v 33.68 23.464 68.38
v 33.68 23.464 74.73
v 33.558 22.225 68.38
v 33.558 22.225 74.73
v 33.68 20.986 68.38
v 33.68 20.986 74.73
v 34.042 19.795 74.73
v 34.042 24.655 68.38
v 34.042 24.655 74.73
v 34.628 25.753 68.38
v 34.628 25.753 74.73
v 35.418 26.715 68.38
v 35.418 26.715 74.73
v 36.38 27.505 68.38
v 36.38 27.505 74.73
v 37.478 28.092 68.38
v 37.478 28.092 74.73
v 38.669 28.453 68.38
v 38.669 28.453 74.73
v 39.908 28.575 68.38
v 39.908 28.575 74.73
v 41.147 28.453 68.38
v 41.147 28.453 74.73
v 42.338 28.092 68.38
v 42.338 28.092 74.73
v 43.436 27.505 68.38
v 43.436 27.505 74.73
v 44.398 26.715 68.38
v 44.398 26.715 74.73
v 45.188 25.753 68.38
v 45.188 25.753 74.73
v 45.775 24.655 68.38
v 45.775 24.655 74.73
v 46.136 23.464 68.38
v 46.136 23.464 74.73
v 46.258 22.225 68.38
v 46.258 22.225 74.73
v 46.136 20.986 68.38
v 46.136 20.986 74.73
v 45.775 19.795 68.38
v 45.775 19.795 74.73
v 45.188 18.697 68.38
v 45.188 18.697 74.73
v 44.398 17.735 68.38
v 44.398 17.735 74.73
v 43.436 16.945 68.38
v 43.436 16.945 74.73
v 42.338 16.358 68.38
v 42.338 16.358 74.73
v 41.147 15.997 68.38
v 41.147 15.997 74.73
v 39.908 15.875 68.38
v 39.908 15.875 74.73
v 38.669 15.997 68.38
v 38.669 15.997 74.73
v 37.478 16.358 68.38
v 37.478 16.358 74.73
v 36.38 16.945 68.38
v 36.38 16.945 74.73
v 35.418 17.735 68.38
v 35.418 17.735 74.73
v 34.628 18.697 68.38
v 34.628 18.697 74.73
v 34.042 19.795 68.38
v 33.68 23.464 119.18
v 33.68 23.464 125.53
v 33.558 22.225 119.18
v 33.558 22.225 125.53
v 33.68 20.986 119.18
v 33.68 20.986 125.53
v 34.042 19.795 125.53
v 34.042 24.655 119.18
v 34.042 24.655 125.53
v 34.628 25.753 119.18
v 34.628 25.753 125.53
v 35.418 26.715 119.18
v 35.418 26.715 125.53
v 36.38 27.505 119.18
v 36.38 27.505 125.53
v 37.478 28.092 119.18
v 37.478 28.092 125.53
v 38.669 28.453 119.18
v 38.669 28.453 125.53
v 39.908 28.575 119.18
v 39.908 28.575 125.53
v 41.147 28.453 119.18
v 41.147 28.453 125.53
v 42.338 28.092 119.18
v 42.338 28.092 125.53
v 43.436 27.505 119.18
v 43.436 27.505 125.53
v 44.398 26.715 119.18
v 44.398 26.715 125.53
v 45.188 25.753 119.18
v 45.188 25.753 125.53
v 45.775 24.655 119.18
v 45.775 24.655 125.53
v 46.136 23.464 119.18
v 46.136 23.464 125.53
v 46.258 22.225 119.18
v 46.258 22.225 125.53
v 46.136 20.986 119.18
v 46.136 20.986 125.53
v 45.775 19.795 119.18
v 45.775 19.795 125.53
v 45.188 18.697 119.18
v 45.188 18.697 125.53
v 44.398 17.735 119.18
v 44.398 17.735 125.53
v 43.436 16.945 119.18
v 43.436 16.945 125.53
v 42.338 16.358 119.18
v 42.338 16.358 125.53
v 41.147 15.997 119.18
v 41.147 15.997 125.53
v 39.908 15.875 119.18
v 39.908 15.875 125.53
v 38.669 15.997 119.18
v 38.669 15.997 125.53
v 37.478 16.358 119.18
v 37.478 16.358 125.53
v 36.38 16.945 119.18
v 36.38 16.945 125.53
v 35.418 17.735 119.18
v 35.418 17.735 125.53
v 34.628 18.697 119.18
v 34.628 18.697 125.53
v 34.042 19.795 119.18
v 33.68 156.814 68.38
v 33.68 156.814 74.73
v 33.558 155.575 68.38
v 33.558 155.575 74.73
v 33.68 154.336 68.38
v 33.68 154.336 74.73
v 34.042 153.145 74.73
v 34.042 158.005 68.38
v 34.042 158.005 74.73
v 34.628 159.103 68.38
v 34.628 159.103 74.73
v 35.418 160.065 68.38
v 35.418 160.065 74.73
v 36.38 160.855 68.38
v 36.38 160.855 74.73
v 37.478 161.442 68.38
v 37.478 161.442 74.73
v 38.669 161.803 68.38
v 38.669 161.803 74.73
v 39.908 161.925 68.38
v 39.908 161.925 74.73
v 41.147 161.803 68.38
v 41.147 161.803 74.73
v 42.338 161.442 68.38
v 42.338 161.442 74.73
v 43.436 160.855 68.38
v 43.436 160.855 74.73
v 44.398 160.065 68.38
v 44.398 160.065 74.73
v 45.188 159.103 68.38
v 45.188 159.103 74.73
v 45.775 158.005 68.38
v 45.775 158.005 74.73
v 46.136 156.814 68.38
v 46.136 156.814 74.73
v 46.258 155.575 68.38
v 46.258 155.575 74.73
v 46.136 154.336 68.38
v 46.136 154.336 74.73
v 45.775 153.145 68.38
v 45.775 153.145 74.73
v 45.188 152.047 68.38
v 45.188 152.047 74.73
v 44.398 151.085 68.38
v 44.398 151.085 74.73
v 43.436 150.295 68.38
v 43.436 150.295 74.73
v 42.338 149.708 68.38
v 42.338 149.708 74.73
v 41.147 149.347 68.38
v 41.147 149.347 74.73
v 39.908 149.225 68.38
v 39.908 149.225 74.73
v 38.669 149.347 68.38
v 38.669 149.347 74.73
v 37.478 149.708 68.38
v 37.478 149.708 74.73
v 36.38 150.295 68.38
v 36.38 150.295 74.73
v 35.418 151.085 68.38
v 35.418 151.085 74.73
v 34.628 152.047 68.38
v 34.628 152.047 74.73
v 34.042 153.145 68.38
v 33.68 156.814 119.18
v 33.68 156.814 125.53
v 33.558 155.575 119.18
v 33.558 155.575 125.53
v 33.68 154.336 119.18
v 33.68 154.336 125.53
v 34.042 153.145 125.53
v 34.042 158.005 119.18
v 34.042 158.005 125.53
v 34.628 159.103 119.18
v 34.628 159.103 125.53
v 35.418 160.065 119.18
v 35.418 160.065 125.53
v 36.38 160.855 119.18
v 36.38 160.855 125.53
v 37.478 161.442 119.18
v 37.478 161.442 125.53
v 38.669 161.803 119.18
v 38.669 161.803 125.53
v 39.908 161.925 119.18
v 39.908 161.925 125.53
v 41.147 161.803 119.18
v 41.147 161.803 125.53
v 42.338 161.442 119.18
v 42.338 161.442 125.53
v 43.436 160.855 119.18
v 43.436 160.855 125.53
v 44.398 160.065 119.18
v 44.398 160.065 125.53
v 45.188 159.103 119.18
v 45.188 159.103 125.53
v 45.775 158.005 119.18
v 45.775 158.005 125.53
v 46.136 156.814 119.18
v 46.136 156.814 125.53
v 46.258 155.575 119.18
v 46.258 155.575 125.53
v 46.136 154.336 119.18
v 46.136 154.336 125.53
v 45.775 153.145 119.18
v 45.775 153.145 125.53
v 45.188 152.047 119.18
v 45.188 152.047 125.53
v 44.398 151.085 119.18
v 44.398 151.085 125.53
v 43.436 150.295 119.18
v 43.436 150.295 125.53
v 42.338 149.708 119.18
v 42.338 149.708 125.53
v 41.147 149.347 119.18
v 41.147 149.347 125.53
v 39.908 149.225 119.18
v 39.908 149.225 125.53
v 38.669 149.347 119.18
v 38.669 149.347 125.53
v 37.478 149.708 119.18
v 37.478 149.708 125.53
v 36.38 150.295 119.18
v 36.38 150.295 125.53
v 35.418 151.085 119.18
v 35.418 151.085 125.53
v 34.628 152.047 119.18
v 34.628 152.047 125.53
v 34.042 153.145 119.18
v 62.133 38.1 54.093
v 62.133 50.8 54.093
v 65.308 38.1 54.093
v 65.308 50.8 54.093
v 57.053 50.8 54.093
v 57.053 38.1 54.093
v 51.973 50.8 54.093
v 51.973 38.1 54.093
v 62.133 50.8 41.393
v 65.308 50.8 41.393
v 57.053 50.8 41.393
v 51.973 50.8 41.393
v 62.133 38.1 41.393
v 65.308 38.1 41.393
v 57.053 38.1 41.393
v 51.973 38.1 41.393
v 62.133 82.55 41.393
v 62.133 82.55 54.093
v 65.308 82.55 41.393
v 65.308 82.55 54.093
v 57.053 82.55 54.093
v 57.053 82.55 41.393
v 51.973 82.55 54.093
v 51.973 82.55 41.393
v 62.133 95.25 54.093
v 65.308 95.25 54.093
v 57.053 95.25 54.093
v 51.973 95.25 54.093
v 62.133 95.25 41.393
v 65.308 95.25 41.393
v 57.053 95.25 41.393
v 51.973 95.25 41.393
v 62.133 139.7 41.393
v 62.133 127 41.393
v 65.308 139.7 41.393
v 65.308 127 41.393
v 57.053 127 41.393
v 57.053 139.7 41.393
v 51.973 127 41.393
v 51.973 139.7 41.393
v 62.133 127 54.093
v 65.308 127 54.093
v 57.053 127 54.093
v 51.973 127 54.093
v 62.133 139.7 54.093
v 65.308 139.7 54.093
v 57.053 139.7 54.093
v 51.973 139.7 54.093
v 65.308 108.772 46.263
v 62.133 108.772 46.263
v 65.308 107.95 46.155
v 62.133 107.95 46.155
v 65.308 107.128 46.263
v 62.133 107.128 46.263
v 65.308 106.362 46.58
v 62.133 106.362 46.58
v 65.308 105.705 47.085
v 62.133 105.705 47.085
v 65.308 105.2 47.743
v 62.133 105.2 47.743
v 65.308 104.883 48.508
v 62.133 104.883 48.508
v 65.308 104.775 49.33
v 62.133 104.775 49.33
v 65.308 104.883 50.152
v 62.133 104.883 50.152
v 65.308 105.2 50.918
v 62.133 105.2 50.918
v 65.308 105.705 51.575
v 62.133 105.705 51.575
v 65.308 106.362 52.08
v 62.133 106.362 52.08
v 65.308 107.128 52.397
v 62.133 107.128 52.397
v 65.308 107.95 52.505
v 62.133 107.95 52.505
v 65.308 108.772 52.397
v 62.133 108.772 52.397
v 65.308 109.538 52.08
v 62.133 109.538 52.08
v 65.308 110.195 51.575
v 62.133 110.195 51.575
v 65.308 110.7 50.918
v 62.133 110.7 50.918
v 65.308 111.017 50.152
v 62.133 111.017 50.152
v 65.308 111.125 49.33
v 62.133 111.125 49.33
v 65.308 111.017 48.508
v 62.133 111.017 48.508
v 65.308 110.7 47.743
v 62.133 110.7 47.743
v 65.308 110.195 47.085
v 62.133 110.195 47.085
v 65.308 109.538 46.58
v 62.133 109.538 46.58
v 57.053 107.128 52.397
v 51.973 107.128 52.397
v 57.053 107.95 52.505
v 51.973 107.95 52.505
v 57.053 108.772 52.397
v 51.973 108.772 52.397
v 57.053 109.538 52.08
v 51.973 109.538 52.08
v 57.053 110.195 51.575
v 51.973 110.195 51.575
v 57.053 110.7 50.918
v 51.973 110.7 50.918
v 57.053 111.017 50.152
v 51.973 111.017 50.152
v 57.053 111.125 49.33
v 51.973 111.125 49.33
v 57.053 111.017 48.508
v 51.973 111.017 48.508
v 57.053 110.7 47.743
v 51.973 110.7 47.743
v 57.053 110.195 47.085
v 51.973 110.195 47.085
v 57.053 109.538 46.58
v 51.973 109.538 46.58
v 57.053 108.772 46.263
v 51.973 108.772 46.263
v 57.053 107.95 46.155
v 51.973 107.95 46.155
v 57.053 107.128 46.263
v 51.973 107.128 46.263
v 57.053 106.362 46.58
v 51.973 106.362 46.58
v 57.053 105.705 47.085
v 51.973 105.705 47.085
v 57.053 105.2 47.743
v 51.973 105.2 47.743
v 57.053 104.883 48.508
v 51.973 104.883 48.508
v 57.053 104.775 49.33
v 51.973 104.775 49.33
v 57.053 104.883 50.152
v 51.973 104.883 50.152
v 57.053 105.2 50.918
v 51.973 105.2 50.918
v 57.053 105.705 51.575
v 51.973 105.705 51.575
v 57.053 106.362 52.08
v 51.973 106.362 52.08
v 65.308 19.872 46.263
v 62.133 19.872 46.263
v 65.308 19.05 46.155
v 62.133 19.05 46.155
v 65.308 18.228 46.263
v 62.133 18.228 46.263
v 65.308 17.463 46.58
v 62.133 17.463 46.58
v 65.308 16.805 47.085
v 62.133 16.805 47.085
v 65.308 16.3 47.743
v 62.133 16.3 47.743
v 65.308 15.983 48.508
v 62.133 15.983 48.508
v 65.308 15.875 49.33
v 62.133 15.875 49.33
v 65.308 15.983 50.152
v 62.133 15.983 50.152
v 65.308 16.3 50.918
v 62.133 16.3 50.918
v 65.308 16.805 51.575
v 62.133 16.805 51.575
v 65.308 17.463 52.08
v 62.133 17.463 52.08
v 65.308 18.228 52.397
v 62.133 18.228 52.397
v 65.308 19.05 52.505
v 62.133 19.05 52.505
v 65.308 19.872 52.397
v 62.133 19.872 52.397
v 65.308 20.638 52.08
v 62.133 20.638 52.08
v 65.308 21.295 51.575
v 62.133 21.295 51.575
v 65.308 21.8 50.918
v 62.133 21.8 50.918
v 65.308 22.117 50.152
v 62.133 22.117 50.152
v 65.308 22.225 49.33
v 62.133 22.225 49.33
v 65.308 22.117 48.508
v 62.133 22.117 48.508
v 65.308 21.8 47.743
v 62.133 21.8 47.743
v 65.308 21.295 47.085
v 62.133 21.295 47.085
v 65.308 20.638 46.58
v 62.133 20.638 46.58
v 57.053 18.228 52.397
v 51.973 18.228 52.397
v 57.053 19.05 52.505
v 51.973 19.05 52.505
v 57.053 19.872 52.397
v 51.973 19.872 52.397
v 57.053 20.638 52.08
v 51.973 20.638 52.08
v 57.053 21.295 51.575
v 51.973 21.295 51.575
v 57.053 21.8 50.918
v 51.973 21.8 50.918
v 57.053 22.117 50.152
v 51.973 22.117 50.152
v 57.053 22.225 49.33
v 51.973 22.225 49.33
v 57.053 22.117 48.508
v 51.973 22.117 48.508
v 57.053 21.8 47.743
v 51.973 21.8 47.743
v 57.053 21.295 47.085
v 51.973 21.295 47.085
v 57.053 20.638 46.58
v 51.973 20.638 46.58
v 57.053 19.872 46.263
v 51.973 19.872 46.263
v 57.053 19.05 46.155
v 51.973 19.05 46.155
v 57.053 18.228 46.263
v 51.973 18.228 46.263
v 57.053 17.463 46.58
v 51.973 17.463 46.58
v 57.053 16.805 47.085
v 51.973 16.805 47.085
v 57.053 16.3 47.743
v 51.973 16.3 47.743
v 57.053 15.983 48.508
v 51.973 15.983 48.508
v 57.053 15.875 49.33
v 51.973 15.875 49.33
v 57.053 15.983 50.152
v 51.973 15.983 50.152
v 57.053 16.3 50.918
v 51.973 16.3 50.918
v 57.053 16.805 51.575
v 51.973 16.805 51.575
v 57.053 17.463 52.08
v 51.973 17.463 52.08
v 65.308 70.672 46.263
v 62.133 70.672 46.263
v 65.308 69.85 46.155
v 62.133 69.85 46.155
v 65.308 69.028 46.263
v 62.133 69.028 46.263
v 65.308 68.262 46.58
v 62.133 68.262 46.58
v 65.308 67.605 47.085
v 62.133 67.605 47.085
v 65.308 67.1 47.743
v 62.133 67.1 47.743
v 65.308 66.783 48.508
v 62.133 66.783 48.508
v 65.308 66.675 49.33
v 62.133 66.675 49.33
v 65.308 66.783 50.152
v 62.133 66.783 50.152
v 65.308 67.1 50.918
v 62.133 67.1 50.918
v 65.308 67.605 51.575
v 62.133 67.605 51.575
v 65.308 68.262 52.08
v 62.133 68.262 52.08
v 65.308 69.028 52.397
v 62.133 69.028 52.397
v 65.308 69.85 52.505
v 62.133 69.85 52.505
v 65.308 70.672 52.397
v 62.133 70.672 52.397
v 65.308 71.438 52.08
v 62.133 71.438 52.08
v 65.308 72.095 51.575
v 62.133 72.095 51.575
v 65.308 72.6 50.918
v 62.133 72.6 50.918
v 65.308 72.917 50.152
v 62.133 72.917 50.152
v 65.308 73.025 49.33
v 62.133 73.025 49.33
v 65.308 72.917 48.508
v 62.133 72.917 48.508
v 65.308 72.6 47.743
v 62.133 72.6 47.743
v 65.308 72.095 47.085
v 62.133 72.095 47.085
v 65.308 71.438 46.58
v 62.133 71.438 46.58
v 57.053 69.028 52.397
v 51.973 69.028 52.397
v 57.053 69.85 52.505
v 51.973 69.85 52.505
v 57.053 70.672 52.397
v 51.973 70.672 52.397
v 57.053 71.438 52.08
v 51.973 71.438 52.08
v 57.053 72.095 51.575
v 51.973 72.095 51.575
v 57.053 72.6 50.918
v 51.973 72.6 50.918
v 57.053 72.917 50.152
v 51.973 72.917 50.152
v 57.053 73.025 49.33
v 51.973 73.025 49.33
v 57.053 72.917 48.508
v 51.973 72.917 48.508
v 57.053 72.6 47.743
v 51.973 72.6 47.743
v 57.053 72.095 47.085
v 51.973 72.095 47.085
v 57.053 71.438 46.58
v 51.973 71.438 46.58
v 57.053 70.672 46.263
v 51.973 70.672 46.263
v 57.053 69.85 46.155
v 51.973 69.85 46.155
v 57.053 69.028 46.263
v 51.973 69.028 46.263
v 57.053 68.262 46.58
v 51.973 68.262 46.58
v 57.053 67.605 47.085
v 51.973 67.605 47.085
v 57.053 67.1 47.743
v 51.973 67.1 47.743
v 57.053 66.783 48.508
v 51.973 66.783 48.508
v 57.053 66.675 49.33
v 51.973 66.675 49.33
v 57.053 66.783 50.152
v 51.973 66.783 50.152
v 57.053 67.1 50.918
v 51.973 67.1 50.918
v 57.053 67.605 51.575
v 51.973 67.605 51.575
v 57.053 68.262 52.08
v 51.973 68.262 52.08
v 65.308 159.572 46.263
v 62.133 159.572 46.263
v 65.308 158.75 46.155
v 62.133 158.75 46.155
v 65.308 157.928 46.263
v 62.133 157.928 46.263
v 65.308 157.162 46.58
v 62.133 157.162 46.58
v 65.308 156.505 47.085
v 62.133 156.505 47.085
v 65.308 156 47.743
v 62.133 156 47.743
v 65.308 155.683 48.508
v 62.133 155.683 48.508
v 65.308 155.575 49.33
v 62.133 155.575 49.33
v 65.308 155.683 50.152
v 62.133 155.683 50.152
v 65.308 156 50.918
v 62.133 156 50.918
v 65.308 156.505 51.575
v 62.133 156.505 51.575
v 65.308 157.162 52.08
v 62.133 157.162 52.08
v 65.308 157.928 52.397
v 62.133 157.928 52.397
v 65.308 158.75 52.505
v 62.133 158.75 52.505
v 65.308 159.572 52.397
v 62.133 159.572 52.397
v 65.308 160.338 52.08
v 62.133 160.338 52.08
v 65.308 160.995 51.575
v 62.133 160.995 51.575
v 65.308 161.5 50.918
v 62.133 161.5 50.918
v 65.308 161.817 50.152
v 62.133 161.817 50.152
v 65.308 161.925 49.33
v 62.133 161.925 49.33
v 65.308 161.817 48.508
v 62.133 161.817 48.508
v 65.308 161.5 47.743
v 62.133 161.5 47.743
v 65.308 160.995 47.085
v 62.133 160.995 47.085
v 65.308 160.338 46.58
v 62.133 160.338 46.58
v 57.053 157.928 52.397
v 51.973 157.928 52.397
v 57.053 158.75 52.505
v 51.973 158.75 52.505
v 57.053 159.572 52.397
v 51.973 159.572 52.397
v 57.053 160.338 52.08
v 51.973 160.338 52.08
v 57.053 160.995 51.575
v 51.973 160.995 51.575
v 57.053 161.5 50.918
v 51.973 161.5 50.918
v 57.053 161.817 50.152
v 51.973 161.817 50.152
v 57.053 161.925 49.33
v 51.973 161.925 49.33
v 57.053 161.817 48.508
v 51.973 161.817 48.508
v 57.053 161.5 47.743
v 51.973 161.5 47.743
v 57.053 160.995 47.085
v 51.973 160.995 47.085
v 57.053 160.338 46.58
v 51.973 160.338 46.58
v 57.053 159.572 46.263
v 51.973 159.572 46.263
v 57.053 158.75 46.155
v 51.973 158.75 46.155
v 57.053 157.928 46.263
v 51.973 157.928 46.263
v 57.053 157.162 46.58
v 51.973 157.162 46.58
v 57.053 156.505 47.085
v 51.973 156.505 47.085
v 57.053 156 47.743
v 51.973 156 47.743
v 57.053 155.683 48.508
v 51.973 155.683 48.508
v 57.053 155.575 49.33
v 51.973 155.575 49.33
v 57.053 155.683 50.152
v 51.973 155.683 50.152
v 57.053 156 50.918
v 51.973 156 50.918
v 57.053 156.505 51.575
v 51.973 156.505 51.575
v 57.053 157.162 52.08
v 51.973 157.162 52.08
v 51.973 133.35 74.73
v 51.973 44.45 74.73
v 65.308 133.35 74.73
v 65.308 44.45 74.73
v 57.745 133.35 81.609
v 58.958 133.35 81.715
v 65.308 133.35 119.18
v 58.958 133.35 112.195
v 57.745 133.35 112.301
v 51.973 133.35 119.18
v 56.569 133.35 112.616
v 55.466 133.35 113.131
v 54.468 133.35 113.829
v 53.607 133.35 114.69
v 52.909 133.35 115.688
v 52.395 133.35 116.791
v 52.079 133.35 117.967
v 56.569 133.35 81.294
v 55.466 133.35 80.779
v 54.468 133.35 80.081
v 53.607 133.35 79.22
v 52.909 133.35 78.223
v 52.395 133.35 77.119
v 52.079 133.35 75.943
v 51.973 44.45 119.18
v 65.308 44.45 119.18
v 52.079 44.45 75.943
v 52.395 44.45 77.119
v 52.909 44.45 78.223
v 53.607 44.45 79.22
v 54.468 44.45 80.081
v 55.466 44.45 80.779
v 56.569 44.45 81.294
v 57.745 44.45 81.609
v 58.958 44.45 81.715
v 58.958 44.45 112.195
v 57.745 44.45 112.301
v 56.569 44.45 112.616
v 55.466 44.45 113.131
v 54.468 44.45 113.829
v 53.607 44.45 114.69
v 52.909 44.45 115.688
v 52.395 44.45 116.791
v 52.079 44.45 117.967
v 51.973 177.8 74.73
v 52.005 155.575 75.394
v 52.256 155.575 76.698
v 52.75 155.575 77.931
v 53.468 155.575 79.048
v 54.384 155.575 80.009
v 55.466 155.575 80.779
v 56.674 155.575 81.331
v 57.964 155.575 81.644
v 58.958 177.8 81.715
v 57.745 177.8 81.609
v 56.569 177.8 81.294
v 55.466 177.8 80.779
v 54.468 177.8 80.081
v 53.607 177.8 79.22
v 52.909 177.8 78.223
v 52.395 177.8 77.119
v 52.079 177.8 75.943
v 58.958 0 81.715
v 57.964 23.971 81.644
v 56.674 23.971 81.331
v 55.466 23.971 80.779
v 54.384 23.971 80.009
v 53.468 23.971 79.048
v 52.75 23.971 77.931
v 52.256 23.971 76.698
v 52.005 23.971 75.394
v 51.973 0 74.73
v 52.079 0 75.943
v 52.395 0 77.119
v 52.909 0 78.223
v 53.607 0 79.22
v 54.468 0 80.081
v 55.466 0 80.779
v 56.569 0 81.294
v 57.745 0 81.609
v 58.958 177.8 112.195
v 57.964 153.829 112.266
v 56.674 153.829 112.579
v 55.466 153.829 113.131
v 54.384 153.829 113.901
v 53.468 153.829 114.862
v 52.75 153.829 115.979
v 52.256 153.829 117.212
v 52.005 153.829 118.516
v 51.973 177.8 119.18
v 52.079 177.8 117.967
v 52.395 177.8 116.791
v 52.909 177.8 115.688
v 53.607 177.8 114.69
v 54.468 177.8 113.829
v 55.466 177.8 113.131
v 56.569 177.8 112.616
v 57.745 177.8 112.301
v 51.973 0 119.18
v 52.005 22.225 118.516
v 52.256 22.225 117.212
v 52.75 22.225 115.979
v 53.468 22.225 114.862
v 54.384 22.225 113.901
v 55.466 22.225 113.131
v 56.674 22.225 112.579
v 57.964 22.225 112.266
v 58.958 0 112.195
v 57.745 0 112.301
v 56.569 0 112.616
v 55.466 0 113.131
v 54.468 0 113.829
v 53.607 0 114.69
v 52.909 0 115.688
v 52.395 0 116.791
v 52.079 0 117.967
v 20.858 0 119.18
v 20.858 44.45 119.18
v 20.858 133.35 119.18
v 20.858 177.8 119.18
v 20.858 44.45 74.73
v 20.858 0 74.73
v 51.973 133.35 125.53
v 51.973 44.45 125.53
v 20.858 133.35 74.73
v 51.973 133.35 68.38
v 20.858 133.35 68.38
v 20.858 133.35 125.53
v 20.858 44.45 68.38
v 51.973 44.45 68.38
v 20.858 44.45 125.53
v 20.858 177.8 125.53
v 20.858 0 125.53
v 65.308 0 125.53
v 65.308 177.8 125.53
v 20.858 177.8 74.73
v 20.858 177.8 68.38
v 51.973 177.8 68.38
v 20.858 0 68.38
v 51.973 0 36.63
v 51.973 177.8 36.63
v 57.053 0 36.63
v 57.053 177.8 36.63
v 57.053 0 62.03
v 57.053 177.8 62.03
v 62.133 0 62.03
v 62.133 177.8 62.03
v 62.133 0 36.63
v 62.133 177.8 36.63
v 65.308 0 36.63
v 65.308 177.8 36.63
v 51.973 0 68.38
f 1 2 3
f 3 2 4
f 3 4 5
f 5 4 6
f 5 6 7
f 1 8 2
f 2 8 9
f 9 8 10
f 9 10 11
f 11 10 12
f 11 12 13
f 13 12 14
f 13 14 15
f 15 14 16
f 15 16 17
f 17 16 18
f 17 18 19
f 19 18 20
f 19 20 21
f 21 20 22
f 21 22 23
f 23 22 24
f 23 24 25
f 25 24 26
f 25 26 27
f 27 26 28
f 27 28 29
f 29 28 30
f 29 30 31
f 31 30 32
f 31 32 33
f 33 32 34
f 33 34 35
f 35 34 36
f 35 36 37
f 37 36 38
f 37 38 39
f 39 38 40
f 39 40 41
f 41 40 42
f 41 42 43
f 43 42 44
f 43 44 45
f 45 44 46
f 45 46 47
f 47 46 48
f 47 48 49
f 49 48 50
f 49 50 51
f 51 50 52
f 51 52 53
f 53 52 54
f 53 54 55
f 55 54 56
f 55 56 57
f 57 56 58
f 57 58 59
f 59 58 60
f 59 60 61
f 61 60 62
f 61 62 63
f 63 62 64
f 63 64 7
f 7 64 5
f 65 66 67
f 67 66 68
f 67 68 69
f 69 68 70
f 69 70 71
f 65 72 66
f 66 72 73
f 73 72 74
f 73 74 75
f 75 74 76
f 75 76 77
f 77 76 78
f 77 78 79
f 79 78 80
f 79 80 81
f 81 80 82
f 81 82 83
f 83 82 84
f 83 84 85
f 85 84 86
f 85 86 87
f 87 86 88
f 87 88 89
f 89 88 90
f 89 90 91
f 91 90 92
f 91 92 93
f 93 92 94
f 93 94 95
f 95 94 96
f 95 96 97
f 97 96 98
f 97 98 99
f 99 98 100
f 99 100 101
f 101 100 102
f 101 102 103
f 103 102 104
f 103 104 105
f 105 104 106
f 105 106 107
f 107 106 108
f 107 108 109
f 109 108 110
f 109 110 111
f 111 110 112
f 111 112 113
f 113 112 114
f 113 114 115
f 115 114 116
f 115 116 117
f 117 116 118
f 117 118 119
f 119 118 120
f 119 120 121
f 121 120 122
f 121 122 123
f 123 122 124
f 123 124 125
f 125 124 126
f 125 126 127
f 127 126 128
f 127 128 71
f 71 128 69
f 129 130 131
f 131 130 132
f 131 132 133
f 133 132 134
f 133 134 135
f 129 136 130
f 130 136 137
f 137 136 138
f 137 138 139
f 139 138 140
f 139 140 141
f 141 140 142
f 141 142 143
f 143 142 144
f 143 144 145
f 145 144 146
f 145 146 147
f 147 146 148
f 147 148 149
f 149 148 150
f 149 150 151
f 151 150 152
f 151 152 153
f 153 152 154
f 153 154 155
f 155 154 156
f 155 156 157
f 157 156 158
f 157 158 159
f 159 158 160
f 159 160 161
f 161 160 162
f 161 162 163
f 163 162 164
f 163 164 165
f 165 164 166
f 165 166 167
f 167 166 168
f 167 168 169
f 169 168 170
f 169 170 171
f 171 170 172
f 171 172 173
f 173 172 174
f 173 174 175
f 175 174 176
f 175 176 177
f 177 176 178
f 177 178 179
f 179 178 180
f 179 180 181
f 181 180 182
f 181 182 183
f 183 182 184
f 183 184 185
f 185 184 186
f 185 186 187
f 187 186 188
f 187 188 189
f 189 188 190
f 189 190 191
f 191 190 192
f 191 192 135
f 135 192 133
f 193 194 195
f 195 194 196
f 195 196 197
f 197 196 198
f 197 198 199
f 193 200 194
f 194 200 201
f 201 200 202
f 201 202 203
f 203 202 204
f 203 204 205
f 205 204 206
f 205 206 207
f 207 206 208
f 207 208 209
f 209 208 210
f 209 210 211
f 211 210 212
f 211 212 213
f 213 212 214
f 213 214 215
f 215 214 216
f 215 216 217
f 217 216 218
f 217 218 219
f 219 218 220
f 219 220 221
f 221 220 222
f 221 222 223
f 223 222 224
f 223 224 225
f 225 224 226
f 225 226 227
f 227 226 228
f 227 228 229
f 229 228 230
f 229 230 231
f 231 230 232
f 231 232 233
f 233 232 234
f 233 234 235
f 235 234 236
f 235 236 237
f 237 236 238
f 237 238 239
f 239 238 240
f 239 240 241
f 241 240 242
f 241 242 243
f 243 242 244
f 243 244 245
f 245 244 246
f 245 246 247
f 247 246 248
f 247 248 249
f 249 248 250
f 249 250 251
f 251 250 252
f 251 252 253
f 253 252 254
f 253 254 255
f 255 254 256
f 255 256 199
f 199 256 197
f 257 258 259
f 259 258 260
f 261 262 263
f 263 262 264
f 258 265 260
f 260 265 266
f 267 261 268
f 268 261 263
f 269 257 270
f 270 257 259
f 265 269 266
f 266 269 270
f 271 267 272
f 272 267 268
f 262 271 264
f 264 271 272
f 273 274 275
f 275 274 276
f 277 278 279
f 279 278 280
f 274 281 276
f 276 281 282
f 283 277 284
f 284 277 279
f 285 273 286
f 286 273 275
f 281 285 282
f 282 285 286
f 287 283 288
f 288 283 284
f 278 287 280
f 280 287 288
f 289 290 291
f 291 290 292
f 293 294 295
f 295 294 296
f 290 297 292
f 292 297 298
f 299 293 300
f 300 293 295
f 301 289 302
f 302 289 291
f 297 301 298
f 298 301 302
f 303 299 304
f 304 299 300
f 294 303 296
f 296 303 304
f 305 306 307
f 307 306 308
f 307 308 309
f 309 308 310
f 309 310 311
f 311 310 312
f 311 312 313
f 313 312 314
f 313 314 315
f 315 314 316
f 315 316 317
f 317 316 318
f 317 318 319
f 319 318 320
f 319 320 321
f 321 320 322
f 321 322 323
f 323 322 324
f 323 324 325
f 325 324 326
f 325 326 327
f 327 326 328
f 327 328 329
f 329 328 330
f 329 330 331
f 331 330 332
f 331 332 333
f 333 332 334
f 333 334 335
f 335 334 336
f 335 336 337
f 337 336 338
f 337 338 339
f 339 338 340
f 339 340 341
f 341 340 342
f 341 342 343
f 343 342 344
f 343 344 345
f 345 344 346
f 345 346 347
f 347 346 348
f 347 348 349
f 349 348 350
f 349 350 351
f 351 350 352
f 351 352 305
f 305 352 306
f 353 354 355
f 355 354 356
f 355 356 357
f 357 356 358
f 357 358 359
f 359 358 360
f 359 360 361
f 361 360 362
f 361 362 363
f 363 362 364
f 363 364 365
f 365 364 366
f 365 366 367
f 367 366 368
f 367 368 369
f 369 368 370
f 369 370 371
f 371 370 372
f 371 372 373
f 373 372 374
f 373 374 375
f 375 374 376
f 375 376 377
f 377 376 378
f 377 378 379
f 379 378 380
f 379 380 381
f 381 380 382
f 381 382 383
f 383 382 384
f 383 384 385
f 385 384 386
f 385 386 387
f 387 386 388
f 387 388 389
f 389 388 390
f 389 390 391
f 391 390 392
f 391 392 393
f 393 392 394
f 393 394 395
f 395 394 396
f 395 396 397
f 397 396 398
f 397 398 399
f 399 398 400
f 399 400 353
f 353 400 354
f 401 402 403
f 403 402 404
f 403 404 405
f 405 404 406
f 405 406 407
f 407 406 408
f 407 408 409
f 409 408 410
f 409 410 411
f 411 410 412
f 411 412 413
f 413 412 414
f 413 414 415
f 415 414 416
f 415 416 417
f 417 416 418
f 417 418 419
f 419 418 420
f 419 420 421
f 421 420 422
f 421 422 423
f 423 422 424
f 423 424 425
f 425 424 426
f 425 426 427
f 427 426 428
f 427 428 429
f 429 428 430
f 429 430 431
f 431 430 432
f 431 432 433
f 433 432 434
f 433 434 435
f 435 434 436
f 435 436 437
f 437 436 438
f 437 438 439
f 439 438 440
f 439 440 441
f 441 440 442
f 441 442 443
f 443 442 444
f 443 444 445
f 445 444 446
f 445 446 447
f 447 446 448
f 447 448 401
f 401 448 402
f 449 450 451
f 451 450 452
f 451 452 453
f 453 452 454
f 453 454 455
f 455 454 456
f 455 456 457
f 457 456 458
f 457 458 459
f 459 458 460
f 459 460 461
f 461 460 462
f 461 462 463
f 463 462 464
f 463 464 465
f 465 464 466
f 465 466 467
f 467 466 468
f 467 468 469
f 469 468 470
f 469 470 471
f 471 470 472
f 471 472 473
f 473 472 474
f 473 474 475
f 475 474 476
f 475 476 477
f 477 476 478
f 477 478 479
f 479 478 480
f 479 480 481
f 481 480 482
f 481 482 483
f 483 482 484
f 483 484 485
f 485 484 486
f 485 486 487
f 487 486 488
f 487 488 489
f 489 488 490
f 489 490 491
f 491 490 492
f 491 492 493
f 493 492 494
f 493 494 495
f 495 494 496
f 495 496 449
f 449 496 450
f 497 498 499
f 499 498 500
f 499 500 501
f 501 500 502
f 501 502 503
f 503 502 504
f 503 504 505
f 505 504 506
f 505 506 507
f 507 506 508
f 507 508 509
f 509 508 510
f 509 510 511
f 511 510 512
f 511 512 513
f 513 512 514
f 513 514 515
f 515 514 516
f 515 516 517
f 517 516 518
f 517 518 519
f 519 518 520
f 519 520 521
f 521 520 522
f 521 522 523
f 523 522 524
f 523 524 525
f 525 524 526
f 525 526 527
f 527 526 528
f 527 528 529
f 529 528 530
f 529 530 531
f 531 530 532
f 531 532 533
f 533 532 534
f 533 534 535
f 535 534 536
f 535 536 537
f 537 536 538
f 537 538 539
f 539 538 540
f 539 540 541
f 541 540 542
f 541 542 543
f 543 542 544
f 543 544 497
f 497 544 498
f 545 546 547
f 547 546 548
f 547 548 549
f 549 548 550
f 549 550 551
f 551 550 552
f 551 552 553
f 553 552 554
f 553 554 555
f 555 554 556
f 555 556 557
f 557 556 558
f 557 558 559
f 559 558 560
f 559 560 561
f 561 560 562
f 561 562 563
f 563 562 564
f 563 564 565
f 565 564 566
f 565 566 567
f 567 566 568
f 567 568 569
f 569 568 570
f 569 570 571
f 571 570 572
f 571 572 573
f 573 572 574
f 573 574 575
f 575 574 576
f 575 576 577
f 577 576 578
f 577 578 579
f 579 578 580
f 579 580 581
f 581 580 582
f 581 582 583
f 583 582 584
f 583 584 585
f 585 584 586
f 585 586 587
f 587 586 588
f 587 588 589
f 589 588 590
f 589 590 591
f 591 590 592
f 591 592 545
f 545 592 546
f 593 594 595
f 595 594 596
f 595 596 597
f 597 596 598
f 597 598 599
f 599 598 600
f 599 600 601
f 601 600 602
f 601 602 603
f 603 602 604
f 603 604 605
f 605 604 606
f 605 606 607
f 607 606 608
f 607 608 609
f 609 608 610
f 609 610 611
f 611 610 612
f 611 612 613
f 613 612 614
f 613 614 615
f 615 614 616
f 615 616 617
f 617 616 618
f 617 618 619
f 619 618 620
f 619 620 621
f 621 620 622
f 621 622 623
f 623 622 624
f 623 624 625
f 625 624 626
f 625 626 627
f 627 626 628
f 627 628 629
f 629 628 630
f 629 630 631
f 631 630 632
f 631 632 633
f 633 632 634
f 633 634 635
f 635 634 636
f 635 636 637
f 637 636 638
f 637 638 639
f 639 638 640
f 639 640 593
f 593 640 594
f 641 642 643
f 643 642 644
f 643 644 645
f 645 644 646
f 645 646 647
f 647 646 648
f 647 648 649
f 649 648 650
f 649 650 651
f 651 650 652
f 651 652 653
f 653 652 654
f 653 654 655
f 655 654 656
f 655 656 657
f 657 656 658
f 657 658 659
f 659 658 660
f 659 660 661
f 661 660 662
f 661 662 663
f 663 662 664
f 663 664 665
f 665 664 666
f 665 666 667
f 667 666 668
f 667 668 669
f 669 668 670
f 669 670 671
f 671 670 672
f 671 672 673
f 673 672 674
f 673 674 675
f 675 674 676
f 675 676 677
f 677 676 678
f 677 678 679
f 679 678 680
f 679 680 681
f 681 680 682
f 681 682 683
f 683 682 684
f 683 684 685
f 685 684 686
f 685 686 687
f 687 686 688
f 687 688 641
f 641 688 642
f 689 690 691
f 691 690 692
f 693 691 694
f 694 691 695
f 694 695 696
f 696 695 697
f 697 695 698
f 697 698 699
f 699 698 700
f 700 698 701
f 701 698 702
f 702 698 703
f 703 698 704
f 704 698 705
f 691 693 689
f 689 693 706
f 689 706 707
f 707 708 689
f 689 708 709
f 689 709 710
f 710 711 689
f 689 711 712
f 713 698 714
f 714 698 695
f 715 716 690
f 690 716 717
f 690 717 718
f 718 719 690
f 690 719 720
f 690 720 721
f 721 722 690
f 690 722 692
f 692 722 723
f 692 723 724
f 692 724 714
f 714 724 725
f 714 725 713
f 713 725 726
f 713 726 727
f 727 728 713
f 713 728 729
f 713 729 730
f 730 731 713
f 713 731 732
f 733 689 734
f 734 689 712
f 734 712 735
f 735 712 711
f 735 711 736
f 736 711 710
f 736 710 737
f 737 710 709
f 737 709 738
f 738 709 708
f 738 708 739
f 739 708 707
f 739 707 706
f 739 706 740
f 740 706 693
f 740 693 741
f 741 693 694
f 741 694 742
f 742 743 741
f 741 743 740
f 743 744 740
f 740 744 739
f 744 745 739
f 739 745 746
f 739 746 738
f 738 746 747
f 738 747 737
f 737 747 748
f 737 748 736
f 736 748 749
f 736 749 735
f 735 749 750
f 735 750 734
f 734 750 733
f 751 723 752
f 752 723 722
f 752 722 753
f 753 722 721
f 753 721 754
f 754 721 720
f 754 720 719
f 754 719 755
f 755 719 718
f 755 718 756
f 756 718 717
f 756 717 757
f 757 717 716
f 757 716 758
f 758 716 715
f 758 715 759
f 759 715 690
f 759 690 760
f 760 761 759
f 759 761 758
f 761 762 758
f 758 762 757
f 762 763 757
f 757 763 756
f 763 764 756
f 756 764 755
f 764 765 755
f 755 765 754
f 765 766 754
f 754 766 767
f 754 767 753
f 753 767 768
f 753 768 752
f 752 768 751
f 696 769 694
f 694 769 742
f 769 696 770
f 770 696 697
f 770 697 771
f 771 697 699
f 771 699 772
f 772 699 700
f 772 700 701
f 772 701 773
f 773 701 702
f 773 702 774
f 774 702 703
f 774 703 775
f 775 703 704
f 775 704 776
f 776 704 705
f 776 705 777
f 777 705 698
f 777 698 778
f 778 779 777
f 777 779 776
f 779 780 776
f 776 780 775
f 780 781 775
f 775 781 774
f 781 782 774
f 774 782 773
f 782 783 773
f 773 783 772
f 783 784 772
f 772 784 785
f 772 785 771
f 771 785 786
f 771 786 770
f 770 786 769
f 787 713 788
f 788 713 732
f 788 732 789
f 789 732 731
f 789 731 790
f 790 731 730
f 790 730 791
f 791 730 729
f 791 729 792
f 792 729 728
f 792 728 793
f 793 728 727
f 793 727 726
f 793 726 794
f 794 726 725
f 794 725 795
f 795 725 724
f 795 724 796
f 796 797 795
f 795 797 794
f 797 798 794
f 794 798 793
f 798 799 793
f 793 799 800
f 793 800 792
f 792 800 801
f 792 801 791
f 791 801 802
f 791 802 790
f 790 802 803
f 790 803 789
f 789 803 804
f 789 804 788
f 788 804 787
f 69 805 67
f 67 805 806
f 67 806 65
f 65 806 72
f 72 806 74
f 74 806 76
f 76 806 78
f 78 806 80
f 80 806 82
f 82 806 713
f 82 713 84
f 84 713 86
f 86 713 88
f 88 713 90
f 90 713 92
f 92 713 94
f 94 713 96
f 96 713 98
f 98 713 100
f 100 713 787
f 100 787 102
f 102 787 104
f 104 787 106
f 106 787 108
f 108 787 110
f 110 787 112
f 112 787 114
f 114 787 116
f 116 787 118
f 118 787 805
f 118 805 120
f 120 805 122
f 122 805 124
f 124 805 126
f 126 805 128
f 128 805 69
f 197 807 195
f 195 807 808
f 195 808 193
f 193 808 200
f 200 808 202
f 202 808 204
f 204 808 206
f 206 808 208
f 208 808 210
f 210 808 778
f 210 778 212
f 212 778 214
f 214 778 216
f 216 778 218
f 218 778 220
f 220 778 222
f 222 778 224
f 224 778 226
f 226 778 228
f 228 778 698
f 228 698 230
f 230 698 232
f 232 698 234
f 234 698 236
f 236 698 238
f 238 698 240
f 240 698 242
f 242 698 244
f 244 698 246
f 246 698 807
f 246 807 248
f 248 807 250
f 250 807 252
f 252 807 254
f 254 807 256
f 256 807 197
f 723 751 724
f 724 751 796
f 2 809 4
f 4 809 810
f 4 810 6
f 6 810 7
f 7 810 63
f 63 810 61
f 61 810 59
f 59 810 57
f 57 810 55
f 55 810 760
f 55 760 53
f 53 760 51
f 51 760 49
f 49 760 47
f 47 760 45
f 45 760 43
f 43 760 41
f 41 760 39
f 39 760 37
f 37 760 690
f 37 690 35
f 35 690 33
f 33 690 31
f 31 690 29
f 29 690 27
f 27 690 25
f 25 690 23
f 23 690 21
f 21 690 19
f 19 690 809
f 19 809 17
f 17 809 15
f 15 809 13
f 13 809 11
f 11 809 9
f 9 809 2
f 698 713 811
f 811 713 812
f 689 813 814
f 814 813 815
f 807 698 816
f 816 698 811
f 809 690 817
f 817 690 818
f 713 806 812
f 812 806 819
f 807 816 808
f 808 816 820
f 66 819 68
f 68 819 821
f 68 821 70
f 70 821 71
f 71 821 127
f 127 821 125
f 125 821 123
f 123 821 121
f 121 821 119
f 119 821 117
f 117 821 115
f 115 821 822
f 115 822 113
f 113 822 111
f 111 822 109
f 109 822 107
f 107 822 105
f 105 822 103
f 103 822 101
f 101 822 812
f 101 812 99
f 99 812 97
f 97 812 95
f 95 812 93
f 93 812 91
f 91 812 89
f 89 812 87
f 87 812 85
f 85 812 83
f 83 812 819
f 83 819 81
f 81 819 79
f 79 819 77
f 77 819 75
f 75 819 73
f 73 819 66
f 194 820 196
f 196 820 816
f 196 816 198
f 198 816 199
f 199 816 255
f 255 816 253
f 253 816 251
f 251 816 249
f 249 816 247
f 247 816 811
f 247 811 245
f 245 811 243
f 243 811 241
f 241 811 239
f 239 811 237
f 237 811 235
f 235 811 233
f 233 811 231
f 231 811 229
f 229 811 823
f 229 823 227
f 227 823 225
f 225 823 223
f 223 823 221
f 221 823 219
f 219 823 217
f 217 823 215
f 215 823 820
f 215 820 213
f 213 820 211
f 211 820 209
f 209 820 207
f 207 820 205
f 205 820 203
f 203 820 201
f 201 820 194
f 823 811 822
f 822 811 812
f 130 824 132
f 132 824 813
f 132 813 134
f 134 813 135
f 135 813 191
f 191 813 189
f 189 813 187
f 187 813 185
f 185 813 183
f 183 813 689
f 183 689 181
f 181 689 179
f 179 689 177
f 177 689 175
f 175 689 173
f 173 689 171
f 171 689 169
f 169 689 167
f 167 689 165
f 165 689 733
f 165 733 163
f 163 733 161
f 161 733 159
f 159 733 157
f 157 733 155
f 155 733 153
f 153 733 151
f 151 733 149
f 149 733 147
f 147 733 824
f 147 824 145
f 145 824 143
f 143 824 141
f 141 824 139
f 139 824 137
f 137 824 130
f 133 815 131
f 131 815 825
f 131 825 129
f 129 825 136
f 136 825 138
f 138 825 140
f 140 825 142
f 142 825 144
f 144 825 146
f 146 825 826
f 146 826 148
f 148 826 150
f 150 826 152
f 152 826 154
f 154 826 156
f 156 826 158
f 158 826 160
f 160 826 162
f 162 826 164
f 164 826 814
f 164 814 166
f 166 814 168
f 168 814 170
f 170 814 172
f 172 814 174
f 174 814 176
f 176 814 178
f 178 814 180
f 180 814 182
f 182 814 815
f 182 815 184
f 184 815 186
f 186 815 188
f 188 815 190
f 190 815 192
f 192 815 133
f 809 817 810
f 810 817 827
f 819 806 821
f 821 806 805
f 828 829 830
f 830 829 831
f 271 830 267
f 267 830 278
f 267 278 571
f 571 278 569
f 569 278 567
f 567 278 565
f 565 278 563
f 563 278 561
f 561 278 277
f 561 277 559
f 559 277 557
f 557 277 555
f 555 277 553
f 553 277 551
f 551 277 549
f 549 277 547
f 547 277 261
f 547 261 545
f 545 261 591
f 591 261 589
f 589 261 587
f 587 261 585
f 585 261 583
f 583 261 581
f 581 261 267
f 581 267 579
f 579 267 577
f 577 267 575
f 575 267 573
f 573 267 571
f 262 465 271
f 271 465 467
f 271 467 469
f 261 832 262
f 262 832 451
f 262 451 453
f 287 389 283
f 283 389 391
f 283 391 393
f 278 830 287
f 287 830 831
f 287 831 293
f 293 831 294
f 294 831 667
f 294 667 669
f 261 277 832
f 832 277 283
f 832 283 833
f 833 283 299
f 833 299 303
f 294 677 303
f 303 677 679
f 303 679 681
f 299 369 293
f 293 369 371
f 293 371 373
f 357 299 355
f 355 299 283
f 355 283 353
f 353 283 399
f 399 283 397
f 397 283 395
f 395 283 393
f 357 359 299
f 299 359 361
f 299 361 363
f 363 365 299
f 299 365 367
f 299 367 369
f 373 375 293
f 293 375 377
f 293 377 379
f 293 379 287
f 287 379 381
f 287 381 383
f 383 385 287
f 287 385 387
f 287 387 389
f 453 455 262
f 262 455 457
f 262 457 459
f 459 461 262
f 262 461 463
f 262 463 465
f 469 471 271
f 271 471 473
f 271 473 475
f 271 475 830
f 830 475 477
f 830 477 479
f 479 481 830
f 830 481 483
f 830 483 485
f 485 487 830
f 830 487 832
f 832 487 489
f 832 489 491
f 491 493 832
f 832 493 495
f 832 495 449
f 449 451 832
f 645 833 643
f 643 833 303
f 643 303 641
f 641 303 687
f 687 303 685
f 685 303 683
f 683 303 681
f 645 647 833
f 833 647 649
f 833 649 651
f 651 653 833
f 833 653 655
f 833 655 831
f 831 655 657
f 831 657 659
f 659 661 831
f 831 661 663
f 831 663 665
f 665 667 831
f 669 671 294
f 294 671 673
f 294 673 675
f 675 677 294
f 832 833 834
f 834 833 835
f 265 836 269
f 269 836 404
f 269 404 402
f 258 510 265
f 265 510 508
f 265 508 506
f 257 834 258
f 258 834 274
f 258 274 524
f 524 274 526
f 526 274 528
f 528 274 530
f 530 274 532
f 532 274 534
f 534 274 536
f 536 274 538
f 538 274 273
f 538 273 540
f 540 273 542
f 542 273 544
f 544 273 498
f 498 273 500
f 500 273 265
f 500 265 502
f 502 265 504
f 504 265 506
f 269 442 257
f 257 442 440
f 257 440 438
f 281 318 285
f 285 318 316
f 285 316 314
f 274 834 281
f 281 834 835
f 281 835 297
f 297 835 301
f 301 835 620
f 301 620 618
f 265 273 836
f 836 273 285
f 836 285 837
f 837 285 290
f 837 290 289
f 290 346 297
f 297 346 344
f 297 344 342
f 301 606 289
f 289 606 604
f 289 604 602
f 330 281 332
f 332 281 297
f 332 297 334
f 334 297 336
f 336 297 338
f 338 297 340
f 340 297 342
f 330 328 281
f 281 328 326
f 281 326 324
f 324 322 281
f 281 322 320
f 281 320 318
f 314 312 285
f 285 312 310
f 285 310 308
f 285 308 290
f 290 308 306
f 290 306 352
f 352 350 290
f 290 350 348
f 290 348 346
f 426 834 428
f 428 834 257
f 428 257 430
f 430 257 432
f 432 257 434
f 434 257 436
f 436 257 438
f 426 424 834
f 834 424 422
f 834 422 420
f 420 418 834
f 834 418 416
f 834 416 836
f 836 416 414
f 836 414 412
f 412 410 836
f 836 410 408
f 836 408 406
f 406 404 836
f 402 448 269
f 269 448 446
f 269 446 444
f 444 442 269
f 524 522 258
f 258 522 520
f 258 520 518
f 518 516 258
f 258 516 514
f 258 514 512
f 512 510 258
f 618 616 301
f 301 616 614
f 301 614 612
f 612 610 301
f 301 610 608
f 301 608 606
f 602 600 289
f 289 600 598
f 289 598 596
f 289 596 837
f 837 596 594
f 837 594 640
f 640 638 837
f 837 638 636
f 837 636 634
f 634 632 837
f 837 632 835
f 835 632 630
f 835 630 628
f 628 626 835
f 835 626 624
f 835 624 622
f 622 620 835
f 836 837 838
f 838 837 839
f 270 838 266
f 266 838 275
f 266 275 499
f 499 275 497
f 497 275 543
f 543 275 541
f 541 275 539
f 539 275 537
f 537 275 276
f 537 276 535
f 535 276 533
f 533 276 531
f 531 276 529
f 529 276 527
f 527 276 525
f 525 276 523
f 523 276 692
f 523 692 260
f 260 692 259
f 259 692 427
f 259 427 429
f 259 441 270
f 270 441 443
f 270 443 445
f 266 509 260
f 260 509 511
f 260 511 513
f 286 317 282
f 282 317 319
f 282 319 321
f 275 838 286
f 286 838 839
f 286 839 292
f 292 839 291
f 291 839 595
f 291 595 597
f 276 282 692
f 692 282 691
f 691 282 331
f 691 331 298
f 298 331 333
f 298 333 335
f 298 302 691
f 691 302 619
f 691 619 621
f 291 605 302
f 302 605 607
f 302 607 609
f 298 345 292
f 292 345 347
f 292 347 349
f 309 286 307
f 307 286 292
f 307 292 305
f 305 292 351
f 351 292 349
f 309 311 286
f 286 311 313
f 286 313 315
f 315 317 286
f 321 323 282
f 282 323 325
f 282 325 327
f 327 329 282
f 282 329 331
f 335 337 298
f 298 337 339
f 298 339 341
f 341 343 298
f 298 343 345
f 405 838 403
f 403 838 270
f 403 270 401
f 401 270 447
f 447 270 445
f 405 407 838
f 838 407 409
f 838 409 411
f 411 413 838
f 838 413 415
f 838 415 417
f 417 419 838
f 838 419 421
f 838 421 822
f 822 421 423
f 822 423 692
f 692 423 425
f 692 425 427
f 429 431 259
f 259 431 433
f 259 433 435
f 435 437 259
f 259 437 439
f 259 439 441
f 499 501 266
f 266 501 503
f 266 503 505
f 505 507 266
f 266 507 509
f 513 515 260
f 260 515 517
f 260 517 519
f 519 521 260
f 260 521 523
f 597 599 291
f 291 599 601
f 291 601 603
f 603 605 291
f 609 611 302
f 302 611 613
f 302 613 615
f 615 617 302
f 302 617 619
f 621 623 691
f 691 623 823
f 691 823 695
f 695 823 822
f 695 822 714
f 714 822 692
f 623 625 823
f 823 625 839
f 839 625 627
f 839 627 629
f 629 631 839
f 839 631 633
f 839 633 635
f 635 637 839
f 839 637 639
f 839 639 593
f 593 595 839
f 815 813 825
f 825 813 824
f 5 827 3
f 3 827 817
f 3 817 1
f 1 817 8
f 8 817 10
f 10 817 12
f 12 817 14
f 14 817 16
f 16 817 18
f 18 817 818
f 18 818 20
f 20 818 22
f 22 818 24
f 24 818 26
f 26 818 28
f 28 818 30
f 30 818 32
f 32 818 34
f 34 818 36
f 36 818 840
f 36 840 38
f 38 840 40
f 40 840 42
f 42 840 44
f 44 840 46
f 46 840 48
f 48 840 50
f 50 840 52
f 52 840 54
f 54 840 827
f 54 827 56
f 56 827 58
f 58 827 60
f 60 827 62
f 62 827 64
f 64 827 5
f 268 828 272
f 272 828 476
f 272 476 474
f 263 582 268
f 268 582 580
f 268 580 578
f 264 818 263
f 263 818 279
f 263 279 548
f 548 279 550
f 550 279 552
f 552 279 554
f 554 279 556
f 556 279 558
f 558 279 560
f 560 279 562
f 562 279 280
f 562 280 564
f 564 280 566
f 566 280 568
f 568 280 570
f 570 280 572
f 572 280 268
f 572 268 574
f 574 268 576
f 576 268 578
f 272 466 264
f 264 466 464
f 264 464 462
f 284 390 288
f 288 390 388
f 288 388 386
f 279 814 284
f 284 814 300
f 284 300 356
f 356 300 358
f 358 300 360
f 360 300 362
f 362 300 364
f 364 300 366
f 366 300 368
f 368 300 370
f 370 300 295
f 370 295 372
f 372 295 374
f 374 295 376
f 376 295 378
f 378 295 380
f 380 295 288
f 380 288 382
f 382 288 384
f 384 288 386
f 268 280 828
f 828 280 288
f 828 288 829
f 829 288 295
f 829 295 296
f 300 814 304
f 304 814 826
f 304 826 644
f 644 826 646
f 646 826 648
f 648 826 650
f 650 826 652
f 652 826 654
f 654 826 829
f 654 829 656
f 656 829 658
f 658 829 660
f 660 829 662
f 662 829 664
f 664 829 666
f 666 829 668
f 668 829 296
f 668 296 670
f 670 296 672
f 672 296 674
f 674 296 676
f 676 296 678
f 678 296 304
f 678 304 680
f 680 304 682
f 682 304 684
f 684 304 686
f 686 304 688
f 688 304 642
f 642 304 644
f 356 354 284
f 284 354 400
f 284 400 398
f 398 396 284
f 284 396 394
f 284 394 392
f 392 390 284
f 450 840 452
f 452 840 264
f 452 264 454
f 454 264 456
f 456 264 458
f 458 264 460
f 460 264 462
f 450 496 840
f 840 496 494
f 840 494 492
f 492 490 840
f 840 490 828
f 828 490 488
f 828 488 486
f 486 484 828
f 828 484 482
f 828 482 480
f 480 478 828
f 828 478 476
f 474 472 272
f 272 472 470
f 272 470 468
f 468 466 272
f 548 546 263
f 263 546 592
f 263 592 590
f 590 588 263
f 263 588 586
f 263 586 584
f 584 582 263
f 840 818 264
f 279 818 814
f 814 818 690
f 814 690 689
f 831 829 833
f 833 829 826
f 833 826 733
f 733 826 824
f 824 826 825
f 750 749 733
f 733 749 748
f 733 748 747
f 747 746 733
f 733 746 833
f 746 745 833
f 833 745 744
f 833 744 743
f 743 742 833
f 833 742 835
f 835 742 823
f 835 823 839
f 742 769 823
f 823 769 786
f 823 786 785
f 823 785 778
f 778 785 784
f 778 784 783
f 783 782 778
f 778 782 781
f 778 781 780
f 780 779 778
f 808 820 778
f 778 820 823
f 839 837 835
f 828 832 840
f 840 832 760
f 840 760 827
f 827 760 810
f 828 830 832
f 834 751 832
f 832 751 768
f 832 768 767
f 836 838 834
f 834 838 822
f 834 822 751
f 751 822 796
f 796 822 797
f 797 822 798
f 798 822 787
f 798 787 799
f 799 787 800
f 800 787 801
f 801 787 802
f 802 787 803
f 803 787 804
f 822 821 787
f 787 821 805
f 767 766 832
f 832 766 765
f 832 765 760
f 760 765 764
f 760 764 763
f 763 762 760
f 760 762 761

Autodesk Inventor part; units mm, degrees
ref_plane "YZ Plane" through (0, 0, 0) normal (1, 0, 0) x (0, 1, 0)
ref_plane "XZ Plane" through (0, 0, 0) normal (0, 1, 0) x (-1, 0, 0)
ref_plane "XY Plane" through (0, 0, 0) normal (0, 0, 1) x (1, 0, 0)
sketch "Sketch1" plane through (0, 0, 0) normal (0, 1, 0) x (-1, 0, 0)
  line L0 (-51.9733, 36.6301) -> (-51.9733, 68.3801)
  line L1 (-65.3083, 74.7301) -> (-65.3083, 36.6301)
  line L2 (-65.3083, 36.6301) -> (-62.1333, 36.6301)
  line L3 (-62.1333, 36.6301) -> (-62.1333, 62.0301)
  line L4 (-62.1333, 62.0301) -> (-57.0533, 62.0301)
  line L5 (-57.0533, 62.0301) -> (-57.0533, 36.6301)
  line L6 (-57.0533, 36.6301) -> (-51.9733, 36.6301)
  line L7 (-51.9733, 68.3801) -> (-20.8583, 68.3801)
  line L8 (-20.8583, 68.3801) -> (-20.8583, 74.7301)
  line L9 (-20.8583, 74.7301) -> (-65.3083, 74.7301)
  dimension "d2" = 5.08
  dimension "d4" = 25.4
  dimension "d18" = 6.35
  dimension "d19" = 38.1
  dimension "d20" = 3.175
  dimension "d79" = 5.08
  dimension "d80" = 44.45
extrude "Extrusion1" add sketch "Sketch1" along normal blind 177.8
ref_plane "Work Plane2" through (65.3083, -38.1, 36.6301) normal (1, 0, 0) x (0, 0, -1)
sketch "Sketch13" plane through (20.8583, 0, 74.7301) normal (0, 0, 1) x (1, 0, 0)
  line L0 (38.1, 0) -> (44.45, 0)
  line L1 (44.45, 0) -> (44.45, 177.8)
  line L2 (44.45, 177.8) -> (38.1, 177.8)
  line L3 (38.1, 177.8) -> (38.1, 0)
  line L4 (44.45, 0) -> (44.45, 177.8) projected
  line L5 (0, 177.8) -> (44.45, 177.8) projected
  line L6 (0, 0) -> (44.45, 0) projected
  point P0 (-20.8583, 0)
  point P1 (36.195, 177.8)
  point P2 (41.275, 177.8)
  point P3 (36.195, 0)
  point P4 (41.275, 0)
  point P5 (31.115, 0)
  dimension "d81" = 6.35
extrude "Extrusion2" add sketch "Sketch13" along normal blind 50.8
sketch "Sketch21" plane through (58.9583, 0, 74.7301) normal (-1, 0, 0) x (0, 0, 1)
  line L0 (50.8, 177.8) -> (50.8, 0) projected
  line L1 (50.8, 0) -> (44.45, 0)
  line L2 (44.45, 0) -> (44.45, 177.8)
  line L3 (44.45, 177.8) -> (50.8, 177.8)
  line L4 (50.8, 177.8) -> (50.8, 0)
  line L5 (0, 177.8) -> (50.8, 177.8) projected
  point P0 (-74.7301, 0)
  dimension "d91" = 6.35
extrude "Extrusion10" add sketch "Sketch21" along normal blind 38.1
sketch "Sketch22" plane through (51.9733, 0, 68.3801) normal (0, 0, -1) x (-1, 0, 0)
  line L0 (31.115, 0) -> (31.115, 177.8) projected
  line L1 (0, 44.45) -> (31.115, 44.45)
  line L2 (31.115, 44.45) -> (31.115, 133.35)
  line L3 (31.115, 133.35) -> (0, 133.35)
  line L4 (0, 133.35) -> (0, 44.45)
  line L5 (0, 0) -> (31.115, 0) projected
  line L6 (0, 177.8) -> (31.115, 177.8) projected
  line L7 (0, 0) -> (0, 177.8) projected
  point P0 (51.9733, 0)
  dimension "d94" = 44.45
  dimension "d95" = 44.45
extrude "Extrusion11" cut sketch "Sketch22" against normal blind 76.2 contours L1 L4 L3 L0
sketch "Sketch23" plane through (20.8583, 0, 74.7301) normal (0, 0, 1) x (1, 0, 0)
  line L0 (0, 177.8) -> (38.1, 177.8) projected
  line L1 (38.1, 177.8) -> (31.115, 177.8)
  line L2 (31.115, 177.8) -> (31.115, 0)
  line L3 (31.115, 0) -> (38.1, 0)
  line L4 (38.1, 0) -> (38.1, 177.8)
  line L5 (31.115, 133.35) -> (31.115, 44.45) projected
  line L6 (38.1, 0) -> (38.1, 177.8) projected
  line L7 (0, 0) -> (38.1, 0) projected
  point P0 (-20.8583, 0)
revolve "Revolution8" add sketch "Sketch23" angle 90 about axis through (58.9583, 0, 74.7301) along (0, 1, 0)
sketch "Sketch24" plane through (58.9583, 0, 119.1801) normal (0, 0, -1) x (-1, 0, 0)
  line L0 (0, 0) -> (0, 177.8) projected
  line L1 (0, 177.8) -> (38.1, 177.8) projected
  line L2 (0, 0) -> (6.985, 0)
  line L3 (6.985, 0) -> (6.985, 177.8)
  line L4 (6.985, 177.8) -> (0, 177.8)
  line L5 (0, 177.8) -> (0, 0)
  line L6 (6.985, 44.45) -> (6.985, 133.35) projected
  point P0 (58.9583, 0)
revolve "Revolution9" add sketch "Sketch24" angle 90 about axis through (58.9583, 177.8, 119.1801) along (0, -1, 0)
sketch "Sketch25" plane through (65.3083, 0, 36.6301) normal (1, 0, 0) x (0, 0, -1)
  line L0 (-38.1, 44.45) -> (-82.55, 44.45)
  line L1 (-82.55, 44.45) -> (-82.55, 133.35)
  line L2 (-82.55, 133.35) -> (-38.1, 133.35)
  line L3 (-38.1, 133.35) -> (-38.1, 44.45)
  line L4 (-88.9, 0) -> (-88.9, 177.8) projected
  line L5 (-38.1, 133.35) -> (-38.1, 44.45) projected
  line L6 (0, 0) -> (-88.9, 0) projected
  line L7 (0, 177.8) -> (-88.9, 177.8) projected
  line L8 (-82.55, 44.45) -> (-82.55, 0) projected
  point P0 (36.6301, 0)
  dimension "d100" = 44.45
  dimension "d101" = 44.45
extrude "Extrusion12" cut sketch "Sketch25" against normal blind 76.2
sketch "Sketch26" plane through (65.3083, 0, 36.6301) normal (1, 0, 0) x (0, 0, -1)
  line L0 (0, 177.8) -> (0, 0)
  line L1 (0, 88.9) -> (-55.1771, 88.9)
  line L2 (0, 0) -> (0, 177.8) projected
  line L3 (0, 177.8) -> (-88.9, 177.8) projected
  line L4 (0, 0) -> (-88.9, 0) projected
  line L5 (-25.4, 0) -> (-25.4, 177.8) projected
  point P0 (36.6301, 0)
  point P1 (-12.7, 158.75)
  point P2 (-12.7, 107.95)
  point P3 (-12.7, 69.85)
  point P4 (-12.7, 19.05)
  dimension "d104" = 19.05
  dimension "d105" = 19.05
  dimension "d106" = 69.85
  dimension "d107" = 69.85
  dimension "d108" = 12.7
  dimension "d109" = 12.7
  dimension "d110" = 12.7
  dimension "d111" = 12.7
hole "Hole4" at (65.3083, 19.05, 49.3301) at (65.3083, 69.85, 49.3301) at (65.3083, 107.95, 49.3301) at (65.3083, 158.75, 49.3301) direction (-1, 0, 0) diameter 6.35 end through all
sketch "Sketch27" plane through (65.3083, 0, 36.6301) normal (1, 0, 0) x (0, 0, -1)
  line L0 (0, 0) -> (0, 177.8) projected
  line L1 (0, 88.9) -> (-38.1, 88.9)
  line L2 (-38.1, 133.35) -> (-38.1, 44.45) projected
  line L3 (-17.4625, 88.9) -> (-17.4625, 82.55)
  line L4 (-17.4625, 82.55) -> (-4.7625, 82.55)
  line L5 (-4.7625, 82.55) -> (-4.7625, 88.9)
  line L6 (-17.4625, 38.1) -> (-4.7625, 38.1)
  line L7 (-4.7625, 38.1) -> (-4.7625, 50.8)
  line L8 (-4.7625, 50.8) -> (-17.4625, 50.8)
  line L9 (-17.4625, 50.8) -> (-17.4625, 38.1)
  line L10 (-17.4625, 88.9) -> (-17.4625, 95.25)
  line L11 (-17.4625, 95.25) -> (-4.7625, 95.25)
  line L12 (-4.7625, 95.25) -> (-4.7625, 88.9)
  line L13 (-17.4625, 139.7) -> (-4.7625, 139.7)
  line L14 (-4.7625, 139.7) -> (-4.7625, 127)
  line L15 (-4.7625, 127) -> (-17.4625, 127)
  line L16 (-17.4625, 127) -> (-17.4625, 139.7)
  point P0 (36.6301, 0)
  dimension "d119" = 12.7
  dimension "d120" = 6.35
  dimension "d121" = 31.75
  dimension "d122" = 12.7
  dimension "d123" = 12.7
extrude "Extrusion13" cut sketch "Sketch27" against normal blind 25.4
sketch "Sketch28" plane through (51.9733, 0, 68.3801) normal (0, 0, -1) x (-1, 0, 0)
  circle A0 centre (12.065, 22.225) radius 6.35
  line L0 (31.115, 0) -> (31.115, 44.45) projected
  line L1 (31.115, 44.45) -> (0, 44.45) projected
  circle A1 centre (12.065, 155.575) radius 6.35
  line L2 (31.115, 133.35) -> (31.115, 177.8) projected
  line L3 (0, 133.35) -> (31.115, 133.35) projected
  point P0 (51.9733, 0)
  dimension "d126" = 12.7
  dimension "d127" = 19.05
  dimension "d128" = 22.225
  dimension "d129" = 12.7
  dimension "d130" = 19.05
  dimension "d131" = 22.225
extrude "Extrusion14" cut sketch "Sketch28" against normal through all
properties part number "Suspension mount 2.0" material "Acetal Resin, Black"
